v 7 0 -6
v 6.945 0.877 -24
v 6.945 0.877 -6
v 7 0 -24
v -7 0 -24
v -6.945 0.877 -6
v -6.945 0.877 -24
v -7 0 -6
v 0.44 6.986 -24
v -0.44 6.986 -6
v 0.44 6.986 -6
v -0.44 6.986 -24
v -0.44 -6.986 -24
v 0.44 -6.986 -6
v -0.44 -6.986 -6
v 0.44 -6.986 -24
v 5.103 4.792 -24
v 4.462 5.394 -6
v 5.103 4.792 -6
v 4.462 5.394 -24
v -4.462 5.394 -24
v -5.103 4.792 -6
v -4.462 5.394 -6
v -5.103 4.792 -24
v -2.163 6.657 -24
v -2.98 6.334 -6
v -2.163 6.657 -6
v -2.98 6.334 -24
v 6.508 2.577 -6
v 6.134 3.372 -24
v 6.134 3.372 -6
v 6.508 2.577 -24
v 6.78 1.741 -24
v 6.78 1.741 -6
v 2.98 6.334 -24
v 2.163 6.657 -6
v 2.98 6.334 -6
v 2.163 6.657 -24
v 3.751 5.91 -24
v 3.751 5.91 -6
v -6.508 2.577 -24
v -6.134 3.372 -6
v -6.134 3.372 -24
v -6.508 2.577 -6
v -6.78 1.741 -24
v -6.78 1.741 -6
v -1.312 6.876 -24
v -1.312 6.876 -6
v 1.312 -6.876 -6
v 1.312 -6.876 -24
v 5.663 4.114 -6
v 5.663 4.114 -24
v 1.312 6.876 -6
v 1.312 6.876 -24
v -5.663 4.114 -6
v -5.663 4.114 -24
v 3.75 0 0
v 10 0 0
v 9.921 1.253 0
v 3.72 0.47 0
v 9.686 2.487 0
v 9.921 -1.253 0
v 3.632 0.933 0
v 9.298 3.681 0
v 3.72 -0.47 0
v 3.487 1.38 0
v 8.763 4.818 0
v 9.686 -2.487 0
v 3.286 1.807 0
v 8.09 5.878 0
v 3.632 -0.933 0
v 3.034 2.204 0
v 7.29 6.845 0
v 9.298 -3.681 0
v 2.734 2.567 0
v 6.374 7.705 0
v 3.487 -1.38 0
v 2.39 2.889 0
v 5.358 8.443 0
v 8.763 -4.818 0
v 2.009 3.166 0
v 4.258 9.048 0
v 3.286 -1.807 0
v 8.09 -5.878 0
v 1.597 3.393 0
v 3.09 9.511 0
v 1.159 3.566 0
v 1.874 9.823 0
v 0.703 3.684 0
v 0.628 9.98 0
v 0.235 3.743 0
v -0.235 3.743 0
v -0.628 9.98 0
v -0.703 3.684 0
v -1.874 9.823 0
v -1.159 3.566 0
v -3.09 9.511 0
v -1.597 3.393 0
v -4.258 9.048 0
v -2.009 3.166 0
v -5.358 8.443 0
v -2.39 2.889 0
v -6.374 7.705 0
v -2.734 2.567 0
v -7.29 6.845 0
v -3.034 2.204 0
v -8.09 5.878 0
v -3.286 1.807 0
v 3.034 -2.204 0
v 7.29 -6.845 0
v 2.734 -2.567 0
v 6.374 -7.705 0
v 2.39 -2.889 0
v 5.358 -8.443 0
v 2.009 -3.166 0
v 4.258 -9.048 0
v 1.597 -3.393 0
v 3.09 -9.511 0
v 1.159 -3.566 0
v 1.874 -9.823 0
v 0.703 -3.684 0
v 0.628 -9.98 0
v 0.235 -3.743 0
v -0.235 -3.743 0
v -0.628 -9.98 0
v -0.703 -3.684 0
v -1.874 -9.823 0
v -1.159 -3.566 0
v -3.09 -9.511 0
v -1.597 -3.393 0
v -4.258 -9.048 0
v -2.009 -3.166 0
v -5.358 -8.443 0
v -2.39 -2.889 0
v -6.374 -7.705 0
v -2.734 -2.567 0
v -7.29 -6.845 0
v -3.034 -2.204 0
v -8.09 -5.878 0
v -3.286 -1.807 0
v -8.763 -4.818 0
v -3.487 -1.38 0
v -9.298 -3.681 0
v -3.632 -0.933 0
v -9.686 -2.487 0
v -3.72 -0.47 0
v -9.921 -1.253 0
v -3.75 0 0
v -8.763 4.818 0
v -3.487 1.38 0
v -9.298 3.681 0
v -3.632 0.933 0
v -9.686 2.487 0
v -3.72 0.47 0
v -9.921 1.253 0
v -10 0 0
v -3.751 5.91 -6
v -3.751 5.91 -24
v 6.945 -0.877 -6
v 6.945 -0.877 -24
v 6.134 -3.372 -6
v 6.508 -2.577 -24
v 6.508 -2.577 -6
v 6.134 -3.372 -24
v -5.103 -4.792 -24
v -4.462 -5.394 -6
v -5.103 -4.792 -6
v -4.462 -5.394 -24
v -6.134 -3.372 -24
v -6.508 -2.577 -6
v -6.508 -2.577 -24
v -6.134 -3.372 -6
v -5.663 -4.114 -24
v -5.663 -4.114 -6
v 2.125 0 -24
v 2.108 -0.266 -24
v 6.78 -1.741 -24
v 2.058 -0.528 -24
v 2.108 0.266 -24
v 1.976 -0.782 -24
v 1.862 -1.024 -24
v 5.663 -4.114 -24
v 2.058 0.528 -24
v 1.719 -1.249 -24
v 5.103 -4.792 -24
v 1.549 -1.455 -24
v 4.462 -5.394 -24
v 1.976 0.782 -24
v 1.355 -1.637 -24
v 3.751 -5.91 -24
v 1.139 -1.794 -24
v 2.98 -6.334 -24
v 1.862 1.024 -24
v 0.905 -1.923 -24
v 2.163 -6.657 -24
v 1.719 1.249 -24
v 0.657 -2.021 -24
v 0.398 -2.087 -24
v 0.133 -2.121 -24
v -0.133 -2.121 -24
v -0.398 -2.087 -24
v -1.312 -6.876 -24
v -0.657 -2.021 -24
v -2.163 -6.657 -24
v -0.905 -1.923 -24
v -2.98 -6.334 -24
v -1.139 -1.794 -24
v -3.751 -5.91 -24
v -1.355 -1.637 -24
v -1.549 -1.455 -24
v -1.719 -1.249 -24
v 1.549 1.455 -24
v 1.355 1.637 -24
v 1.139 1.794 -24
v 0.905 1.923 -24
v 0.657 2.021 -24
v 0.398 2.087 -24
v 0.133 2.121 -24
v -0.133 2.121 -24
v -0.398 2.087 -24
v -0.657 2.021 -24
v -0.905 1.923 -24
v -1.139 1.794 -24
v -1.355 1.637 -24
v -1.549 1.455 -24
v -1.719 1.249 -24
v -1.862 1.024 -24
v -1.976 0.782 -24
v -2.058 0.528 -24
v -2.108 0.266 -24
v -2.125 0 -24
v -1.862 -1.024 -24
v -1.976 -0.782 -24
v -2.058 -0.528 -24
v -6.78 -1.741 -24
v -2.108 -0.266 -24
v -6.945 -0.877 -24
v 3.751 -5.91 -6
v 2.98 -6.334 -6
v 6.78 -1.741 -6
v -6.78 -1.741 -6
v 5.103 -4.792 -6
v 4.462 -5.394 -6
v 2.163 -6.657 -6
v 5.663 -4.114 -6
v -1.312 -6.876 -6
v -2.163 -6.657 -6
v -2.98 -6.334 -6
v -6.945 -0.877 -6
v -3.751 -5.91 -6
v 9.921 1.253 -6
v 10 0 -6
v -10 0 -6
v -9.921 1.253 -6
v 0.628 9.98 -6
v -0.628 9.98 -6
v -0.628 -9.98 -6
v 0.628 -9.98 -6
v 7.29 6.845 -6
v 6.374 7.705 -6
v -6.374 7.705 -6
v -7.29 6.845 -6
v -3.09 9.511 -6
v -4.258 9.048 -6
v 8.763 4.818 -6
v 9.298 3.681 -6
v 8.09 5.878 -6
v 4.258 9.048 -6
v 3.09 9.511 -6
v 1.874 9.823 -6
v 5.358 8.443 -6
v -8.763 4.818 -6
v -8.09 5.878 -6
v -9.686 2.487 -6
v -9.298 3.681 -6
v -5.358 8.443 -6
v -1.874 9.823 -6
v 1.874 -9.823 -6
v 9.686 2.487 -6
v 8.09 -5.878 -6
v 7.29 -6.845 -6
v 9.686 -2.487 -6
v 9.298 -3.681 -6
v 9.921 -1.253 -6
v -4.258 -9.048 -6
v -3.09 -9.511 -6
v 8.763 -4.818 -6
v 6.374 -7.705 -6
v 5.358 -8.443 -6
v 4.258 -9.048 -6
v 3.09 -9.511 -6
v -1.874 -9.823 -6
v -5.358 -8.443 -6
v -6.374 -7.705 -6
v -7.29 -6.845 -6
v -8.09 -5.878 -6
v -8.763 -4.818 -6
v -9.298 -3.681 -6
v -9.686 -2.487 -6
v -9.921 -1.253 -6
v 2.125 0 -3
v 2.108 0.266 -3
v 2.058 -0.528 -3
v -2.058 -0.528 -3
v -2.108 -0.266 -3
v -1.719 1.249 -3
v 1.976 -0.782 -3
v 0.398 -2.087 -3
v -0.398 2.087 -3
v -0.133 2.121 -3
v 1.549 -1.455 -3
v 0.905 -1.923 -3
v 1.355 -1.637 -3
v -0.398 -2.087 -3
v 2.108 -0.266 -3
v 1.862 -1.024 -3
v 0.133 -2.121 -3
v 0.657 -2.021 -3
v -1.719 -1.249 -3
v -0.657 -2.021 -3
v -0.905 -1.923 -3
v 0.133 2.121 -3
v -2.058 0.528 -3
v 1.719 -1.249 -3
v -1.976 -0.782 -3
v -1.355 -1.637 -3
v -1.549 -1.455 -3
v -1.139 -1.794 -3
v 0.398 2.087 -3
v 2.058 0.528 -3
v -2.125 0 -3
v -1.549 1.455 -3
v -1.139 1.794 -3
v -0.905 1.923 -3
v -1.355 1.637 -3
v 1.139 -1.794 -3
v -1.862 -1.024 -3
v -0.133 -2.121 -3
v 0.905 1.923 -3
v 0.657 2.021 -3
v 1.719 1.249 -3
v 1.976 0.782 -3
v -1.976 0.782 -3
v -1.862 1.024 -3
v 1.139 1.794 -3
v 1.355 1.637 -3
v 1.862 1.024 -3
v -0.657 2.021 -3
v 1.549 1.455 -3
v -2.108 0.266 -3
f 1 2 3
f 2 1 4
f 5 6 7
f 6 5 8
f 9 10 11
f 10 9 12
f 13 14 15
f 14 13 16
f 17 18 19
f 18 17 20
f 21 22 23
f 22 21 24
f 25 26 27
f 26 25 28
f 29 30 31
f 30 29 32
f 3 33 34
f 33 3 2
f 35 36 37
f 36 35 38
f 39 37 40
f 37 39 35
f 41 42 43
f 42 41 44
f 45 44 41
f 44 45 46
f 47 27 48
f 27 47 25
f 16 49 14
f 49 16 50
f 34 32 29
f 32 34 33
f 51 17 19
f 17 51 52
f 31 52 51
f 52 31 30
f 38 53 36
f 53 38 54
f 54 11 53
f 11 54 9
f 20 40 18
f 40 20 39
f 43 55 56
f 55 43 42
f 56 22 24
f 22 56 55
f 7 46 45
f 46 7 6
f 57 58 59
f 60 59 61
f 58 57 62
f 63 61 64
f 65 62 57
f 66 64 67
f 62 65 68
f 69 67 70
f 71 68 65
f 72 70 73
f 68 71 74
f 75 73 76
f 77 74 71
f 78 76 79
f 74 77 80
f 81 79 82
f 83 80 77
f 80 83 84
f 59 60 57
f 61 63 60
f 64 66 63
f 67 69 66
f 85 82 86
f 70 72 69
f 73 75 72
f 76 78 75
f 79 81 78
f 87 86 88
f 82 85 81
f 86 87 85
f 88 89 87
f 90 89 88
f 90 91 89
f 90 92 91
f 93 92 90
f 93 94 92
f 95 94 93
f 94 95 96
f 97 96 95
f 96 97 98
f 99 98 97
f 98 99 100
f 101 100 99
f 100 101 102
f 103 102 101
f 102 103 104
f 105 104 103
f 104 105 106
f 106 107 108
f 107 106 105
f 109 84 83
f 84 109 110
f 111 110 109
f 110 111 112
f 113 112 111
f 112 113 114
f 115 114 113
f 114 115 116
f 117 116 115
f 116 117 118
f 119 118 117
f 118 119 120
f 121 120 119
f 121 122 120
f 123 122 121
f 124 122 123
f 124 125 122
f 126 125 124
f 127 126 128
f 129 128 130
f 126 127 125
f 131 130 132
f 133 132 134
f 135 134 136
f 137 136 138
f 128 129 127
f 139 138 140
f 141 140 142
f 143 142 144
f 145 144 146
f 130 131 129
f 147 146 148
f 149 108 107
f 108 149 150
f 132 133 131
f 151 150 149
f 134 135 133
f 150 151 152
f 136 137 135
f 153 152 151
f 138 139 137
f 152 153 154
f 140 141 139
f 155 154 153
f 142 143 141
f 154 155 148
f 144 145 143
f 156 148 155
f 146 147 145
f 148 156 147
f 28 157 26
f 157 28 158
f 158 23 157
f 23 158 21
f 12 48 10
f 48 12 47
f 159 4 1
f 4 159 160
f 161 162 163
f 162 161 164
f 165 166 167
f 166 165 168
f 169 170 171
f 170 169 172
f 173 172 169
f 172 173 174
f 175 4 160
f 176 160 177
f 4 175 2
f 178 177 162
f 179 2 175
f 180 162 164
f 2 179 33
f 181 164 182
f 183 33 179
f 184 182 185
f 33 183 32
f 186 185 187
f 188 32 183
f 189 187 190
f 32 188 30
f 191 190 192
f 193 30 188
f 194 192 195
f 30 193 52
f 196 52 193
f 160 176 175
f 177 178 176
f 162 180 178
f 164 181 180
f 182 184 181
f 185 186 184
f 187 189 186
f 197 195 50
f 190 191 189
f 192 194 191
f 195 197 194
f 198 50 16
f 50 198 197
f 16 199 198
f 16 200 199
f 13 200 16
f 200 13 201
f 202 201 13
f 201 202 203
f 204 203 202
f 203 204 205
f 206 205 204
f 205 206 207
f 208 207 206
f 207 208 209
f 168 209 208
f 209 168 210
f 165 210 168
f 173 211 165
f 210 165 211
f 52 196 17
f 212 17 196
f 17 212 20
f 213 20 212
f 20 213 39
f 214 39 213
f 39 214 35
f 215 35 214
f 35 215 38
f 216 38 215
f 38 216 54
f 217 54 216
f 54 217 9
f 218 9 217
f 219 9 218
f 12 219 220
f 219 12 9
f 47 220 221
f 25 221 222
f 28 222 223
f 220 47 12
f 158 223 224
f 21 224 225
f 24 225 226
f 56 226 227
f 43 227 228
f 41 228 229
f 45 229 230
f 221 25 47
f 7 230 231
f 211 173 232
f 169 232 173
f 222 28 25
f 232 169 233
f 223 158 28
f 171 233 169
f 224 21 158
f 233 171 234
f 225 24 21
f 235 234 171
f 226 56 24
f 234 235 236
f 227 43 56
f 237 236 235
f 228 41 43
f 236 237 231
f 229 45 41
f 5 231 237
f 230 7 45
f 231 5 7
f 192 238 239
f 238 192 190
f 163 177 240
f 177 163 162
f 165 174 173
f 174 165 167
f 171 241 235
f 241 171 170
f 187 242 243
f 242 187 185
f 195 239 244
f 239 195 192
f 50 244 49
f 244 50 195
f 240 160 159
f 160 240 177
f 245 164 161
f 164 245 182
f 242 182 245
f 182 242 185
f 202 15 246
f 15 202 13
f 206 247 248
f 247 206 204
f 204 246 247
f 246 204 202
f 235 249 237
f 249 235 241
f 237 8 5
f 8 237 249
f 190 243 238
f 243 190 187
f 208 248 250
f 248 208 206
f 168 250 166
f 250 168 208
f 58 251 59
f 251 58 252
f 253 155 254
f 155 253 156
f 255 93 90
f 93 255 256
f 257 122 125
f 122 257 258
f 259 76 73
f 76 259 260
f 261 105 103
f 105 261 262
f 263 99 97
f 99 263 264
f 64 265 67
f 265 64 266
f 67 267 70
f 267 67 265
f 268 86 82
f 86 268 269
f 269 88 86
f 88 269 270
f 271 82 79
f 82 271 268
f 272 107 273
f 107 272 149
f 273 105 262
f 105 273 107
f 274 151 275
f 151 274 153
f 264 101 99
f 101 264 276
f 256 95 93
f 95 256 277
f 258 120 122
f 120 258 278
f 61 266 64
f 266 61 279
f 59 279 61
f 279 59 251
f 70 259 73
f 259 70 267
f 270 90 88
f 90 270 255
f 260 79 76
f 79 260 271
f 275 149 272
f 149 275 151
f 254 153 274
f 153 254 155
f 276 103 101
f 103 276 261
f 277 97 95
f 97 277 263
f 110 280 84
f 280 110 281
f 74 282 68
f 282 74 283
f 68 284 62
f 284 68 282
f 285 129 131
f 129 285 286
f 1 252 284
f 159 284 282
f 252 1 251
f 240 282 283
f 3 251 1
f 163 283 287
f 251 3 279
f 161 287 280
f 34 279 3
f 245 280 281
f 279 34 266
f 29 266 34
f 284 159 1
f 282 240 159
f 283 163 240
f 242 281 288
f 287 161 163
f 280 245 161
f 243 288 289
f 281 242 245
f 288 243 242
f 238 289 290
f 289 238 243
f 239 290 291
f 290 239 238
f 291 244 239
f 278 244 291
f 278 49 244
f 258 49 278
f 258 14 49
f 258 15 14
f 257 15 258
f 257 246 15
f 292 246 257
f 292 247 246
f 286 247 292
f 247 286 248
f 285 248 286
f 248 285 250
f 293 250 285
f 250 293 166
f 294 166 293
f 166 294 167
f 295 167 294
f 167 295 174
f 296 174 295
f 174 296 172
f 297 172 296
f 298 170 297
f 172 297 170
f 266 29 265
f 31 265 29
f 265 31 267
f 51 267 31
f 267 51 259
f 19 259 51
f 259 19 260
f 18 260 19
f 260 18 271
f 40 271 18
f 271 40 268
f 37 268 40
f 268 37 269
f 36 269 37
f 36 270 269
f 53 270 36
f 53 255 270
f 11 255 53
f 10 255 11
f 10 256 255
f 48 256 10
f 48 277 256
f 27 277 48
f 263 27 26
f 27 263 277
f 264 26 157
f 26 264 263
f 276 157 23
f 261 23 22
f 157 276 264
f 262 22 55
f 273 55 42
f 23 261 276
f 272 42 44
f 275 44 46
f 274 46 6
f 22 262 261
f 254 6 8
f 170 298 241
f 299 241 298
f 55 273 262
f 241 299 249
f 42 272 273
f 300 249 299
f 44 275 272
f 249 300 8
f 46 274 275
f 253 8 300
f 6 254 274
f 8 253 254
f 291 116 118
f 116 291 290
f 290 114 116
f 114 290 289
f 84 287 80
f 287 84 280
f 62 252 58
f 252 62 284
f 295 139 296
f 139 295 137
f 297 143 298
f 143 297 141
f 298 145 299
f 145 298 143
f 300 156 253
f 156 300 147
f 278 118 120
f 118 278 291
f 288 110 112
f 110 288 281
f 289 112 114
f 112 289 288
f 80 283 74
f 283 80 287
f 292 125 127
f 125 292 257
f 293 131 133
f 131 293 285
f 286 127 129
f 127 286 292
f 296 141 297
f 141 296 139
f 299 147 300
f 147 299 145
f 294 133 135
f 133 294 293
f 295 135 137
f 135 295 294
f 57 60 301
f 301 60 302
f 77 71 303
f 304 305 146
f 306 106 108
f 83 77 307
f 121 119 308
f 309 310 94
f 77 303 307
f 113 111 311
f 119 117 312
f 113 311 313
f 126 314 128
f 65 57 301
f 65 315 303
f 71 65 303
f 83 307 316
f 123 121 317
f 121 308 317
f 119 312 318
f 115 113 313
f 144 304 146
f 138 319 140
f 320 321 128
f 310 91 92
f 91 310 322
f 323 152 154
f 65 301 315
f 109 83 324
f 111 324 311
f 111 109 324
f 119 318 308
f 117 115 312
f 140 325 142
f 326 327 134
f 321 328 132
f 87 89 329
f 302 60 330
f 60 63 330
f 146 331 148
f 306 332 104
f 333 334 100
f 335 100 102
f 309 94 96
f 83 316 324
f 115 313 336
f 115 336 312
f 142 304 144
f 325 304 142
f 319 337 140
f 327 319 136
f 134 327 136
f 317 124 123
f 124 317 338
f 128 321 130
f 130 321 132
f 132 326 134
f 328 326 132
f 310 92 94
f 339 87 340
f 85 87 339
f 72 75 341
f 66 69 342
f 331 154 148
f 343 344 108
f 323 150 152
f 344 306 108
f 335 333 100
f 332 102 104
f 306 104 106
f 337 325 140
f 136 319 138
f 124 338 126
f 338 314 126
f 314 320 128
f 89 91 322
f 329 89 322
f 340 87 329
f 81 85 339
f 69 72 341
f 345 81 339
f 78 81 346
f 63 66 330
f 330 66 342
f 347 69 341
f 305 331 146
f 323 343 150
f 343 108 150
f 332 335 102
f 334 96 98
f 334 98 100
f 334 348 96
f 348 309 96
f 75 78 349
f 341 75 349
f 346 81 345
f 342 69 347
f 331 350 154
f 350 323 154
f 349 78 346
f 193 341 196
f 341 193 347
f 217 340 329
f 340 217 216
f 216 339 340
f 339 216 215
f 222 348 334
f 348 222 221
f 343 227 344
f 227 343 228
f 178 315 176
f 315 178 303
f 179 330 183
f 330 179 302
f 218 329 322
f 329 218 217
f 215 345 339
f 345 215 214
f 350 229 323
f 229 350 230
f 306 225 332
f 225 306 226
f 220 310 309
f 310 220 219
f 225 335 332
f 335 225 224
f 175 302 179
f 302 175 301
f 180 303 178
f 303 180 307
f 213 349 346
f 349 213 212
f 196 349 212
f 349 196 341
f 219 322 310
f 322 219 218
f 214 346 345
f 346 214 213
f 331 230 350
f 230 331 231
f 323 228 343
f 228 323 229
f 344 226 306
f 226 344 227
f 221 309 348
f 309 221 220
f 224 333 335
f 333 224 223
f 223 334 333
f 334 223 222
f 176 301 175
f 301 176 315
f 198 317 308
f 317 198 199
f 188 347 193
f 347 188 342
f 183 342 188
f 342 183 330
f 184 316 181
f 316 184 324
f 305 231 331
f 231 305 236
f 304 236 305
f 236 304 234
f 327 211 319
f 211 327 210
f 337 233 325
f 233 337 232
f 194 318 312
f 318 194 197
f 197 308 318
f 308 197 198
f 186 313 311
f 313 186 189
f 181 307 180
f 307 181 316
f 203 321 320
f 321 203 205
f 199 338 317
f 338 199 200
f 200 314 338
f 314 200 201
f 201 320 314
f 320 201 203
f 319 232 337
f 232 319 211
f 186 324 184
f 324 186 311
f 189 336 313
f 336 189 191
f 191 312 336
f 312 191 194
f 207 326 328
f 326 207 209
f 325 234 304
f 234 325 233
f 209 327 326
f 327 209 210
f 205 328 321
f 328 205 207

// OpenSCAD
$fn = 50;


difference() {
	union() {
		translate(v = [0, 0, -24.0000000000]) {
			cylinder(h = 24, r = 7.0000000000);
		}
		translate(v = [0, 0, -6.0000000000]) {
			cylinder(h = 6, r = 10.0000000000);
		}
	}
	union() {
		translate(v = [0, 0, 0]) {
			rotate(a = [0, 0, 0]) {
				difference() {
					union() {
						#translate(v = [0, 0, -24.0000000000]) {
							cylinder(h = 24, r = 2.0000000000);
						}
						#translate(v = [0, 0, -3]) {
							cylinder(h = 3, r1 = 2.1250000000, r2 = 3.7500000000);
						}
						#translate(v = [0, 0, -24.0000000000]) {
							cylinder(h = 24, r = 2.1250000000);
						}
						#translate(v = [0, 0, -24.0000000000]) {
							cylinder(h = 24, r = 2.0000000000);
						}
					}
					union();
				}
			}
		}
	}
}
